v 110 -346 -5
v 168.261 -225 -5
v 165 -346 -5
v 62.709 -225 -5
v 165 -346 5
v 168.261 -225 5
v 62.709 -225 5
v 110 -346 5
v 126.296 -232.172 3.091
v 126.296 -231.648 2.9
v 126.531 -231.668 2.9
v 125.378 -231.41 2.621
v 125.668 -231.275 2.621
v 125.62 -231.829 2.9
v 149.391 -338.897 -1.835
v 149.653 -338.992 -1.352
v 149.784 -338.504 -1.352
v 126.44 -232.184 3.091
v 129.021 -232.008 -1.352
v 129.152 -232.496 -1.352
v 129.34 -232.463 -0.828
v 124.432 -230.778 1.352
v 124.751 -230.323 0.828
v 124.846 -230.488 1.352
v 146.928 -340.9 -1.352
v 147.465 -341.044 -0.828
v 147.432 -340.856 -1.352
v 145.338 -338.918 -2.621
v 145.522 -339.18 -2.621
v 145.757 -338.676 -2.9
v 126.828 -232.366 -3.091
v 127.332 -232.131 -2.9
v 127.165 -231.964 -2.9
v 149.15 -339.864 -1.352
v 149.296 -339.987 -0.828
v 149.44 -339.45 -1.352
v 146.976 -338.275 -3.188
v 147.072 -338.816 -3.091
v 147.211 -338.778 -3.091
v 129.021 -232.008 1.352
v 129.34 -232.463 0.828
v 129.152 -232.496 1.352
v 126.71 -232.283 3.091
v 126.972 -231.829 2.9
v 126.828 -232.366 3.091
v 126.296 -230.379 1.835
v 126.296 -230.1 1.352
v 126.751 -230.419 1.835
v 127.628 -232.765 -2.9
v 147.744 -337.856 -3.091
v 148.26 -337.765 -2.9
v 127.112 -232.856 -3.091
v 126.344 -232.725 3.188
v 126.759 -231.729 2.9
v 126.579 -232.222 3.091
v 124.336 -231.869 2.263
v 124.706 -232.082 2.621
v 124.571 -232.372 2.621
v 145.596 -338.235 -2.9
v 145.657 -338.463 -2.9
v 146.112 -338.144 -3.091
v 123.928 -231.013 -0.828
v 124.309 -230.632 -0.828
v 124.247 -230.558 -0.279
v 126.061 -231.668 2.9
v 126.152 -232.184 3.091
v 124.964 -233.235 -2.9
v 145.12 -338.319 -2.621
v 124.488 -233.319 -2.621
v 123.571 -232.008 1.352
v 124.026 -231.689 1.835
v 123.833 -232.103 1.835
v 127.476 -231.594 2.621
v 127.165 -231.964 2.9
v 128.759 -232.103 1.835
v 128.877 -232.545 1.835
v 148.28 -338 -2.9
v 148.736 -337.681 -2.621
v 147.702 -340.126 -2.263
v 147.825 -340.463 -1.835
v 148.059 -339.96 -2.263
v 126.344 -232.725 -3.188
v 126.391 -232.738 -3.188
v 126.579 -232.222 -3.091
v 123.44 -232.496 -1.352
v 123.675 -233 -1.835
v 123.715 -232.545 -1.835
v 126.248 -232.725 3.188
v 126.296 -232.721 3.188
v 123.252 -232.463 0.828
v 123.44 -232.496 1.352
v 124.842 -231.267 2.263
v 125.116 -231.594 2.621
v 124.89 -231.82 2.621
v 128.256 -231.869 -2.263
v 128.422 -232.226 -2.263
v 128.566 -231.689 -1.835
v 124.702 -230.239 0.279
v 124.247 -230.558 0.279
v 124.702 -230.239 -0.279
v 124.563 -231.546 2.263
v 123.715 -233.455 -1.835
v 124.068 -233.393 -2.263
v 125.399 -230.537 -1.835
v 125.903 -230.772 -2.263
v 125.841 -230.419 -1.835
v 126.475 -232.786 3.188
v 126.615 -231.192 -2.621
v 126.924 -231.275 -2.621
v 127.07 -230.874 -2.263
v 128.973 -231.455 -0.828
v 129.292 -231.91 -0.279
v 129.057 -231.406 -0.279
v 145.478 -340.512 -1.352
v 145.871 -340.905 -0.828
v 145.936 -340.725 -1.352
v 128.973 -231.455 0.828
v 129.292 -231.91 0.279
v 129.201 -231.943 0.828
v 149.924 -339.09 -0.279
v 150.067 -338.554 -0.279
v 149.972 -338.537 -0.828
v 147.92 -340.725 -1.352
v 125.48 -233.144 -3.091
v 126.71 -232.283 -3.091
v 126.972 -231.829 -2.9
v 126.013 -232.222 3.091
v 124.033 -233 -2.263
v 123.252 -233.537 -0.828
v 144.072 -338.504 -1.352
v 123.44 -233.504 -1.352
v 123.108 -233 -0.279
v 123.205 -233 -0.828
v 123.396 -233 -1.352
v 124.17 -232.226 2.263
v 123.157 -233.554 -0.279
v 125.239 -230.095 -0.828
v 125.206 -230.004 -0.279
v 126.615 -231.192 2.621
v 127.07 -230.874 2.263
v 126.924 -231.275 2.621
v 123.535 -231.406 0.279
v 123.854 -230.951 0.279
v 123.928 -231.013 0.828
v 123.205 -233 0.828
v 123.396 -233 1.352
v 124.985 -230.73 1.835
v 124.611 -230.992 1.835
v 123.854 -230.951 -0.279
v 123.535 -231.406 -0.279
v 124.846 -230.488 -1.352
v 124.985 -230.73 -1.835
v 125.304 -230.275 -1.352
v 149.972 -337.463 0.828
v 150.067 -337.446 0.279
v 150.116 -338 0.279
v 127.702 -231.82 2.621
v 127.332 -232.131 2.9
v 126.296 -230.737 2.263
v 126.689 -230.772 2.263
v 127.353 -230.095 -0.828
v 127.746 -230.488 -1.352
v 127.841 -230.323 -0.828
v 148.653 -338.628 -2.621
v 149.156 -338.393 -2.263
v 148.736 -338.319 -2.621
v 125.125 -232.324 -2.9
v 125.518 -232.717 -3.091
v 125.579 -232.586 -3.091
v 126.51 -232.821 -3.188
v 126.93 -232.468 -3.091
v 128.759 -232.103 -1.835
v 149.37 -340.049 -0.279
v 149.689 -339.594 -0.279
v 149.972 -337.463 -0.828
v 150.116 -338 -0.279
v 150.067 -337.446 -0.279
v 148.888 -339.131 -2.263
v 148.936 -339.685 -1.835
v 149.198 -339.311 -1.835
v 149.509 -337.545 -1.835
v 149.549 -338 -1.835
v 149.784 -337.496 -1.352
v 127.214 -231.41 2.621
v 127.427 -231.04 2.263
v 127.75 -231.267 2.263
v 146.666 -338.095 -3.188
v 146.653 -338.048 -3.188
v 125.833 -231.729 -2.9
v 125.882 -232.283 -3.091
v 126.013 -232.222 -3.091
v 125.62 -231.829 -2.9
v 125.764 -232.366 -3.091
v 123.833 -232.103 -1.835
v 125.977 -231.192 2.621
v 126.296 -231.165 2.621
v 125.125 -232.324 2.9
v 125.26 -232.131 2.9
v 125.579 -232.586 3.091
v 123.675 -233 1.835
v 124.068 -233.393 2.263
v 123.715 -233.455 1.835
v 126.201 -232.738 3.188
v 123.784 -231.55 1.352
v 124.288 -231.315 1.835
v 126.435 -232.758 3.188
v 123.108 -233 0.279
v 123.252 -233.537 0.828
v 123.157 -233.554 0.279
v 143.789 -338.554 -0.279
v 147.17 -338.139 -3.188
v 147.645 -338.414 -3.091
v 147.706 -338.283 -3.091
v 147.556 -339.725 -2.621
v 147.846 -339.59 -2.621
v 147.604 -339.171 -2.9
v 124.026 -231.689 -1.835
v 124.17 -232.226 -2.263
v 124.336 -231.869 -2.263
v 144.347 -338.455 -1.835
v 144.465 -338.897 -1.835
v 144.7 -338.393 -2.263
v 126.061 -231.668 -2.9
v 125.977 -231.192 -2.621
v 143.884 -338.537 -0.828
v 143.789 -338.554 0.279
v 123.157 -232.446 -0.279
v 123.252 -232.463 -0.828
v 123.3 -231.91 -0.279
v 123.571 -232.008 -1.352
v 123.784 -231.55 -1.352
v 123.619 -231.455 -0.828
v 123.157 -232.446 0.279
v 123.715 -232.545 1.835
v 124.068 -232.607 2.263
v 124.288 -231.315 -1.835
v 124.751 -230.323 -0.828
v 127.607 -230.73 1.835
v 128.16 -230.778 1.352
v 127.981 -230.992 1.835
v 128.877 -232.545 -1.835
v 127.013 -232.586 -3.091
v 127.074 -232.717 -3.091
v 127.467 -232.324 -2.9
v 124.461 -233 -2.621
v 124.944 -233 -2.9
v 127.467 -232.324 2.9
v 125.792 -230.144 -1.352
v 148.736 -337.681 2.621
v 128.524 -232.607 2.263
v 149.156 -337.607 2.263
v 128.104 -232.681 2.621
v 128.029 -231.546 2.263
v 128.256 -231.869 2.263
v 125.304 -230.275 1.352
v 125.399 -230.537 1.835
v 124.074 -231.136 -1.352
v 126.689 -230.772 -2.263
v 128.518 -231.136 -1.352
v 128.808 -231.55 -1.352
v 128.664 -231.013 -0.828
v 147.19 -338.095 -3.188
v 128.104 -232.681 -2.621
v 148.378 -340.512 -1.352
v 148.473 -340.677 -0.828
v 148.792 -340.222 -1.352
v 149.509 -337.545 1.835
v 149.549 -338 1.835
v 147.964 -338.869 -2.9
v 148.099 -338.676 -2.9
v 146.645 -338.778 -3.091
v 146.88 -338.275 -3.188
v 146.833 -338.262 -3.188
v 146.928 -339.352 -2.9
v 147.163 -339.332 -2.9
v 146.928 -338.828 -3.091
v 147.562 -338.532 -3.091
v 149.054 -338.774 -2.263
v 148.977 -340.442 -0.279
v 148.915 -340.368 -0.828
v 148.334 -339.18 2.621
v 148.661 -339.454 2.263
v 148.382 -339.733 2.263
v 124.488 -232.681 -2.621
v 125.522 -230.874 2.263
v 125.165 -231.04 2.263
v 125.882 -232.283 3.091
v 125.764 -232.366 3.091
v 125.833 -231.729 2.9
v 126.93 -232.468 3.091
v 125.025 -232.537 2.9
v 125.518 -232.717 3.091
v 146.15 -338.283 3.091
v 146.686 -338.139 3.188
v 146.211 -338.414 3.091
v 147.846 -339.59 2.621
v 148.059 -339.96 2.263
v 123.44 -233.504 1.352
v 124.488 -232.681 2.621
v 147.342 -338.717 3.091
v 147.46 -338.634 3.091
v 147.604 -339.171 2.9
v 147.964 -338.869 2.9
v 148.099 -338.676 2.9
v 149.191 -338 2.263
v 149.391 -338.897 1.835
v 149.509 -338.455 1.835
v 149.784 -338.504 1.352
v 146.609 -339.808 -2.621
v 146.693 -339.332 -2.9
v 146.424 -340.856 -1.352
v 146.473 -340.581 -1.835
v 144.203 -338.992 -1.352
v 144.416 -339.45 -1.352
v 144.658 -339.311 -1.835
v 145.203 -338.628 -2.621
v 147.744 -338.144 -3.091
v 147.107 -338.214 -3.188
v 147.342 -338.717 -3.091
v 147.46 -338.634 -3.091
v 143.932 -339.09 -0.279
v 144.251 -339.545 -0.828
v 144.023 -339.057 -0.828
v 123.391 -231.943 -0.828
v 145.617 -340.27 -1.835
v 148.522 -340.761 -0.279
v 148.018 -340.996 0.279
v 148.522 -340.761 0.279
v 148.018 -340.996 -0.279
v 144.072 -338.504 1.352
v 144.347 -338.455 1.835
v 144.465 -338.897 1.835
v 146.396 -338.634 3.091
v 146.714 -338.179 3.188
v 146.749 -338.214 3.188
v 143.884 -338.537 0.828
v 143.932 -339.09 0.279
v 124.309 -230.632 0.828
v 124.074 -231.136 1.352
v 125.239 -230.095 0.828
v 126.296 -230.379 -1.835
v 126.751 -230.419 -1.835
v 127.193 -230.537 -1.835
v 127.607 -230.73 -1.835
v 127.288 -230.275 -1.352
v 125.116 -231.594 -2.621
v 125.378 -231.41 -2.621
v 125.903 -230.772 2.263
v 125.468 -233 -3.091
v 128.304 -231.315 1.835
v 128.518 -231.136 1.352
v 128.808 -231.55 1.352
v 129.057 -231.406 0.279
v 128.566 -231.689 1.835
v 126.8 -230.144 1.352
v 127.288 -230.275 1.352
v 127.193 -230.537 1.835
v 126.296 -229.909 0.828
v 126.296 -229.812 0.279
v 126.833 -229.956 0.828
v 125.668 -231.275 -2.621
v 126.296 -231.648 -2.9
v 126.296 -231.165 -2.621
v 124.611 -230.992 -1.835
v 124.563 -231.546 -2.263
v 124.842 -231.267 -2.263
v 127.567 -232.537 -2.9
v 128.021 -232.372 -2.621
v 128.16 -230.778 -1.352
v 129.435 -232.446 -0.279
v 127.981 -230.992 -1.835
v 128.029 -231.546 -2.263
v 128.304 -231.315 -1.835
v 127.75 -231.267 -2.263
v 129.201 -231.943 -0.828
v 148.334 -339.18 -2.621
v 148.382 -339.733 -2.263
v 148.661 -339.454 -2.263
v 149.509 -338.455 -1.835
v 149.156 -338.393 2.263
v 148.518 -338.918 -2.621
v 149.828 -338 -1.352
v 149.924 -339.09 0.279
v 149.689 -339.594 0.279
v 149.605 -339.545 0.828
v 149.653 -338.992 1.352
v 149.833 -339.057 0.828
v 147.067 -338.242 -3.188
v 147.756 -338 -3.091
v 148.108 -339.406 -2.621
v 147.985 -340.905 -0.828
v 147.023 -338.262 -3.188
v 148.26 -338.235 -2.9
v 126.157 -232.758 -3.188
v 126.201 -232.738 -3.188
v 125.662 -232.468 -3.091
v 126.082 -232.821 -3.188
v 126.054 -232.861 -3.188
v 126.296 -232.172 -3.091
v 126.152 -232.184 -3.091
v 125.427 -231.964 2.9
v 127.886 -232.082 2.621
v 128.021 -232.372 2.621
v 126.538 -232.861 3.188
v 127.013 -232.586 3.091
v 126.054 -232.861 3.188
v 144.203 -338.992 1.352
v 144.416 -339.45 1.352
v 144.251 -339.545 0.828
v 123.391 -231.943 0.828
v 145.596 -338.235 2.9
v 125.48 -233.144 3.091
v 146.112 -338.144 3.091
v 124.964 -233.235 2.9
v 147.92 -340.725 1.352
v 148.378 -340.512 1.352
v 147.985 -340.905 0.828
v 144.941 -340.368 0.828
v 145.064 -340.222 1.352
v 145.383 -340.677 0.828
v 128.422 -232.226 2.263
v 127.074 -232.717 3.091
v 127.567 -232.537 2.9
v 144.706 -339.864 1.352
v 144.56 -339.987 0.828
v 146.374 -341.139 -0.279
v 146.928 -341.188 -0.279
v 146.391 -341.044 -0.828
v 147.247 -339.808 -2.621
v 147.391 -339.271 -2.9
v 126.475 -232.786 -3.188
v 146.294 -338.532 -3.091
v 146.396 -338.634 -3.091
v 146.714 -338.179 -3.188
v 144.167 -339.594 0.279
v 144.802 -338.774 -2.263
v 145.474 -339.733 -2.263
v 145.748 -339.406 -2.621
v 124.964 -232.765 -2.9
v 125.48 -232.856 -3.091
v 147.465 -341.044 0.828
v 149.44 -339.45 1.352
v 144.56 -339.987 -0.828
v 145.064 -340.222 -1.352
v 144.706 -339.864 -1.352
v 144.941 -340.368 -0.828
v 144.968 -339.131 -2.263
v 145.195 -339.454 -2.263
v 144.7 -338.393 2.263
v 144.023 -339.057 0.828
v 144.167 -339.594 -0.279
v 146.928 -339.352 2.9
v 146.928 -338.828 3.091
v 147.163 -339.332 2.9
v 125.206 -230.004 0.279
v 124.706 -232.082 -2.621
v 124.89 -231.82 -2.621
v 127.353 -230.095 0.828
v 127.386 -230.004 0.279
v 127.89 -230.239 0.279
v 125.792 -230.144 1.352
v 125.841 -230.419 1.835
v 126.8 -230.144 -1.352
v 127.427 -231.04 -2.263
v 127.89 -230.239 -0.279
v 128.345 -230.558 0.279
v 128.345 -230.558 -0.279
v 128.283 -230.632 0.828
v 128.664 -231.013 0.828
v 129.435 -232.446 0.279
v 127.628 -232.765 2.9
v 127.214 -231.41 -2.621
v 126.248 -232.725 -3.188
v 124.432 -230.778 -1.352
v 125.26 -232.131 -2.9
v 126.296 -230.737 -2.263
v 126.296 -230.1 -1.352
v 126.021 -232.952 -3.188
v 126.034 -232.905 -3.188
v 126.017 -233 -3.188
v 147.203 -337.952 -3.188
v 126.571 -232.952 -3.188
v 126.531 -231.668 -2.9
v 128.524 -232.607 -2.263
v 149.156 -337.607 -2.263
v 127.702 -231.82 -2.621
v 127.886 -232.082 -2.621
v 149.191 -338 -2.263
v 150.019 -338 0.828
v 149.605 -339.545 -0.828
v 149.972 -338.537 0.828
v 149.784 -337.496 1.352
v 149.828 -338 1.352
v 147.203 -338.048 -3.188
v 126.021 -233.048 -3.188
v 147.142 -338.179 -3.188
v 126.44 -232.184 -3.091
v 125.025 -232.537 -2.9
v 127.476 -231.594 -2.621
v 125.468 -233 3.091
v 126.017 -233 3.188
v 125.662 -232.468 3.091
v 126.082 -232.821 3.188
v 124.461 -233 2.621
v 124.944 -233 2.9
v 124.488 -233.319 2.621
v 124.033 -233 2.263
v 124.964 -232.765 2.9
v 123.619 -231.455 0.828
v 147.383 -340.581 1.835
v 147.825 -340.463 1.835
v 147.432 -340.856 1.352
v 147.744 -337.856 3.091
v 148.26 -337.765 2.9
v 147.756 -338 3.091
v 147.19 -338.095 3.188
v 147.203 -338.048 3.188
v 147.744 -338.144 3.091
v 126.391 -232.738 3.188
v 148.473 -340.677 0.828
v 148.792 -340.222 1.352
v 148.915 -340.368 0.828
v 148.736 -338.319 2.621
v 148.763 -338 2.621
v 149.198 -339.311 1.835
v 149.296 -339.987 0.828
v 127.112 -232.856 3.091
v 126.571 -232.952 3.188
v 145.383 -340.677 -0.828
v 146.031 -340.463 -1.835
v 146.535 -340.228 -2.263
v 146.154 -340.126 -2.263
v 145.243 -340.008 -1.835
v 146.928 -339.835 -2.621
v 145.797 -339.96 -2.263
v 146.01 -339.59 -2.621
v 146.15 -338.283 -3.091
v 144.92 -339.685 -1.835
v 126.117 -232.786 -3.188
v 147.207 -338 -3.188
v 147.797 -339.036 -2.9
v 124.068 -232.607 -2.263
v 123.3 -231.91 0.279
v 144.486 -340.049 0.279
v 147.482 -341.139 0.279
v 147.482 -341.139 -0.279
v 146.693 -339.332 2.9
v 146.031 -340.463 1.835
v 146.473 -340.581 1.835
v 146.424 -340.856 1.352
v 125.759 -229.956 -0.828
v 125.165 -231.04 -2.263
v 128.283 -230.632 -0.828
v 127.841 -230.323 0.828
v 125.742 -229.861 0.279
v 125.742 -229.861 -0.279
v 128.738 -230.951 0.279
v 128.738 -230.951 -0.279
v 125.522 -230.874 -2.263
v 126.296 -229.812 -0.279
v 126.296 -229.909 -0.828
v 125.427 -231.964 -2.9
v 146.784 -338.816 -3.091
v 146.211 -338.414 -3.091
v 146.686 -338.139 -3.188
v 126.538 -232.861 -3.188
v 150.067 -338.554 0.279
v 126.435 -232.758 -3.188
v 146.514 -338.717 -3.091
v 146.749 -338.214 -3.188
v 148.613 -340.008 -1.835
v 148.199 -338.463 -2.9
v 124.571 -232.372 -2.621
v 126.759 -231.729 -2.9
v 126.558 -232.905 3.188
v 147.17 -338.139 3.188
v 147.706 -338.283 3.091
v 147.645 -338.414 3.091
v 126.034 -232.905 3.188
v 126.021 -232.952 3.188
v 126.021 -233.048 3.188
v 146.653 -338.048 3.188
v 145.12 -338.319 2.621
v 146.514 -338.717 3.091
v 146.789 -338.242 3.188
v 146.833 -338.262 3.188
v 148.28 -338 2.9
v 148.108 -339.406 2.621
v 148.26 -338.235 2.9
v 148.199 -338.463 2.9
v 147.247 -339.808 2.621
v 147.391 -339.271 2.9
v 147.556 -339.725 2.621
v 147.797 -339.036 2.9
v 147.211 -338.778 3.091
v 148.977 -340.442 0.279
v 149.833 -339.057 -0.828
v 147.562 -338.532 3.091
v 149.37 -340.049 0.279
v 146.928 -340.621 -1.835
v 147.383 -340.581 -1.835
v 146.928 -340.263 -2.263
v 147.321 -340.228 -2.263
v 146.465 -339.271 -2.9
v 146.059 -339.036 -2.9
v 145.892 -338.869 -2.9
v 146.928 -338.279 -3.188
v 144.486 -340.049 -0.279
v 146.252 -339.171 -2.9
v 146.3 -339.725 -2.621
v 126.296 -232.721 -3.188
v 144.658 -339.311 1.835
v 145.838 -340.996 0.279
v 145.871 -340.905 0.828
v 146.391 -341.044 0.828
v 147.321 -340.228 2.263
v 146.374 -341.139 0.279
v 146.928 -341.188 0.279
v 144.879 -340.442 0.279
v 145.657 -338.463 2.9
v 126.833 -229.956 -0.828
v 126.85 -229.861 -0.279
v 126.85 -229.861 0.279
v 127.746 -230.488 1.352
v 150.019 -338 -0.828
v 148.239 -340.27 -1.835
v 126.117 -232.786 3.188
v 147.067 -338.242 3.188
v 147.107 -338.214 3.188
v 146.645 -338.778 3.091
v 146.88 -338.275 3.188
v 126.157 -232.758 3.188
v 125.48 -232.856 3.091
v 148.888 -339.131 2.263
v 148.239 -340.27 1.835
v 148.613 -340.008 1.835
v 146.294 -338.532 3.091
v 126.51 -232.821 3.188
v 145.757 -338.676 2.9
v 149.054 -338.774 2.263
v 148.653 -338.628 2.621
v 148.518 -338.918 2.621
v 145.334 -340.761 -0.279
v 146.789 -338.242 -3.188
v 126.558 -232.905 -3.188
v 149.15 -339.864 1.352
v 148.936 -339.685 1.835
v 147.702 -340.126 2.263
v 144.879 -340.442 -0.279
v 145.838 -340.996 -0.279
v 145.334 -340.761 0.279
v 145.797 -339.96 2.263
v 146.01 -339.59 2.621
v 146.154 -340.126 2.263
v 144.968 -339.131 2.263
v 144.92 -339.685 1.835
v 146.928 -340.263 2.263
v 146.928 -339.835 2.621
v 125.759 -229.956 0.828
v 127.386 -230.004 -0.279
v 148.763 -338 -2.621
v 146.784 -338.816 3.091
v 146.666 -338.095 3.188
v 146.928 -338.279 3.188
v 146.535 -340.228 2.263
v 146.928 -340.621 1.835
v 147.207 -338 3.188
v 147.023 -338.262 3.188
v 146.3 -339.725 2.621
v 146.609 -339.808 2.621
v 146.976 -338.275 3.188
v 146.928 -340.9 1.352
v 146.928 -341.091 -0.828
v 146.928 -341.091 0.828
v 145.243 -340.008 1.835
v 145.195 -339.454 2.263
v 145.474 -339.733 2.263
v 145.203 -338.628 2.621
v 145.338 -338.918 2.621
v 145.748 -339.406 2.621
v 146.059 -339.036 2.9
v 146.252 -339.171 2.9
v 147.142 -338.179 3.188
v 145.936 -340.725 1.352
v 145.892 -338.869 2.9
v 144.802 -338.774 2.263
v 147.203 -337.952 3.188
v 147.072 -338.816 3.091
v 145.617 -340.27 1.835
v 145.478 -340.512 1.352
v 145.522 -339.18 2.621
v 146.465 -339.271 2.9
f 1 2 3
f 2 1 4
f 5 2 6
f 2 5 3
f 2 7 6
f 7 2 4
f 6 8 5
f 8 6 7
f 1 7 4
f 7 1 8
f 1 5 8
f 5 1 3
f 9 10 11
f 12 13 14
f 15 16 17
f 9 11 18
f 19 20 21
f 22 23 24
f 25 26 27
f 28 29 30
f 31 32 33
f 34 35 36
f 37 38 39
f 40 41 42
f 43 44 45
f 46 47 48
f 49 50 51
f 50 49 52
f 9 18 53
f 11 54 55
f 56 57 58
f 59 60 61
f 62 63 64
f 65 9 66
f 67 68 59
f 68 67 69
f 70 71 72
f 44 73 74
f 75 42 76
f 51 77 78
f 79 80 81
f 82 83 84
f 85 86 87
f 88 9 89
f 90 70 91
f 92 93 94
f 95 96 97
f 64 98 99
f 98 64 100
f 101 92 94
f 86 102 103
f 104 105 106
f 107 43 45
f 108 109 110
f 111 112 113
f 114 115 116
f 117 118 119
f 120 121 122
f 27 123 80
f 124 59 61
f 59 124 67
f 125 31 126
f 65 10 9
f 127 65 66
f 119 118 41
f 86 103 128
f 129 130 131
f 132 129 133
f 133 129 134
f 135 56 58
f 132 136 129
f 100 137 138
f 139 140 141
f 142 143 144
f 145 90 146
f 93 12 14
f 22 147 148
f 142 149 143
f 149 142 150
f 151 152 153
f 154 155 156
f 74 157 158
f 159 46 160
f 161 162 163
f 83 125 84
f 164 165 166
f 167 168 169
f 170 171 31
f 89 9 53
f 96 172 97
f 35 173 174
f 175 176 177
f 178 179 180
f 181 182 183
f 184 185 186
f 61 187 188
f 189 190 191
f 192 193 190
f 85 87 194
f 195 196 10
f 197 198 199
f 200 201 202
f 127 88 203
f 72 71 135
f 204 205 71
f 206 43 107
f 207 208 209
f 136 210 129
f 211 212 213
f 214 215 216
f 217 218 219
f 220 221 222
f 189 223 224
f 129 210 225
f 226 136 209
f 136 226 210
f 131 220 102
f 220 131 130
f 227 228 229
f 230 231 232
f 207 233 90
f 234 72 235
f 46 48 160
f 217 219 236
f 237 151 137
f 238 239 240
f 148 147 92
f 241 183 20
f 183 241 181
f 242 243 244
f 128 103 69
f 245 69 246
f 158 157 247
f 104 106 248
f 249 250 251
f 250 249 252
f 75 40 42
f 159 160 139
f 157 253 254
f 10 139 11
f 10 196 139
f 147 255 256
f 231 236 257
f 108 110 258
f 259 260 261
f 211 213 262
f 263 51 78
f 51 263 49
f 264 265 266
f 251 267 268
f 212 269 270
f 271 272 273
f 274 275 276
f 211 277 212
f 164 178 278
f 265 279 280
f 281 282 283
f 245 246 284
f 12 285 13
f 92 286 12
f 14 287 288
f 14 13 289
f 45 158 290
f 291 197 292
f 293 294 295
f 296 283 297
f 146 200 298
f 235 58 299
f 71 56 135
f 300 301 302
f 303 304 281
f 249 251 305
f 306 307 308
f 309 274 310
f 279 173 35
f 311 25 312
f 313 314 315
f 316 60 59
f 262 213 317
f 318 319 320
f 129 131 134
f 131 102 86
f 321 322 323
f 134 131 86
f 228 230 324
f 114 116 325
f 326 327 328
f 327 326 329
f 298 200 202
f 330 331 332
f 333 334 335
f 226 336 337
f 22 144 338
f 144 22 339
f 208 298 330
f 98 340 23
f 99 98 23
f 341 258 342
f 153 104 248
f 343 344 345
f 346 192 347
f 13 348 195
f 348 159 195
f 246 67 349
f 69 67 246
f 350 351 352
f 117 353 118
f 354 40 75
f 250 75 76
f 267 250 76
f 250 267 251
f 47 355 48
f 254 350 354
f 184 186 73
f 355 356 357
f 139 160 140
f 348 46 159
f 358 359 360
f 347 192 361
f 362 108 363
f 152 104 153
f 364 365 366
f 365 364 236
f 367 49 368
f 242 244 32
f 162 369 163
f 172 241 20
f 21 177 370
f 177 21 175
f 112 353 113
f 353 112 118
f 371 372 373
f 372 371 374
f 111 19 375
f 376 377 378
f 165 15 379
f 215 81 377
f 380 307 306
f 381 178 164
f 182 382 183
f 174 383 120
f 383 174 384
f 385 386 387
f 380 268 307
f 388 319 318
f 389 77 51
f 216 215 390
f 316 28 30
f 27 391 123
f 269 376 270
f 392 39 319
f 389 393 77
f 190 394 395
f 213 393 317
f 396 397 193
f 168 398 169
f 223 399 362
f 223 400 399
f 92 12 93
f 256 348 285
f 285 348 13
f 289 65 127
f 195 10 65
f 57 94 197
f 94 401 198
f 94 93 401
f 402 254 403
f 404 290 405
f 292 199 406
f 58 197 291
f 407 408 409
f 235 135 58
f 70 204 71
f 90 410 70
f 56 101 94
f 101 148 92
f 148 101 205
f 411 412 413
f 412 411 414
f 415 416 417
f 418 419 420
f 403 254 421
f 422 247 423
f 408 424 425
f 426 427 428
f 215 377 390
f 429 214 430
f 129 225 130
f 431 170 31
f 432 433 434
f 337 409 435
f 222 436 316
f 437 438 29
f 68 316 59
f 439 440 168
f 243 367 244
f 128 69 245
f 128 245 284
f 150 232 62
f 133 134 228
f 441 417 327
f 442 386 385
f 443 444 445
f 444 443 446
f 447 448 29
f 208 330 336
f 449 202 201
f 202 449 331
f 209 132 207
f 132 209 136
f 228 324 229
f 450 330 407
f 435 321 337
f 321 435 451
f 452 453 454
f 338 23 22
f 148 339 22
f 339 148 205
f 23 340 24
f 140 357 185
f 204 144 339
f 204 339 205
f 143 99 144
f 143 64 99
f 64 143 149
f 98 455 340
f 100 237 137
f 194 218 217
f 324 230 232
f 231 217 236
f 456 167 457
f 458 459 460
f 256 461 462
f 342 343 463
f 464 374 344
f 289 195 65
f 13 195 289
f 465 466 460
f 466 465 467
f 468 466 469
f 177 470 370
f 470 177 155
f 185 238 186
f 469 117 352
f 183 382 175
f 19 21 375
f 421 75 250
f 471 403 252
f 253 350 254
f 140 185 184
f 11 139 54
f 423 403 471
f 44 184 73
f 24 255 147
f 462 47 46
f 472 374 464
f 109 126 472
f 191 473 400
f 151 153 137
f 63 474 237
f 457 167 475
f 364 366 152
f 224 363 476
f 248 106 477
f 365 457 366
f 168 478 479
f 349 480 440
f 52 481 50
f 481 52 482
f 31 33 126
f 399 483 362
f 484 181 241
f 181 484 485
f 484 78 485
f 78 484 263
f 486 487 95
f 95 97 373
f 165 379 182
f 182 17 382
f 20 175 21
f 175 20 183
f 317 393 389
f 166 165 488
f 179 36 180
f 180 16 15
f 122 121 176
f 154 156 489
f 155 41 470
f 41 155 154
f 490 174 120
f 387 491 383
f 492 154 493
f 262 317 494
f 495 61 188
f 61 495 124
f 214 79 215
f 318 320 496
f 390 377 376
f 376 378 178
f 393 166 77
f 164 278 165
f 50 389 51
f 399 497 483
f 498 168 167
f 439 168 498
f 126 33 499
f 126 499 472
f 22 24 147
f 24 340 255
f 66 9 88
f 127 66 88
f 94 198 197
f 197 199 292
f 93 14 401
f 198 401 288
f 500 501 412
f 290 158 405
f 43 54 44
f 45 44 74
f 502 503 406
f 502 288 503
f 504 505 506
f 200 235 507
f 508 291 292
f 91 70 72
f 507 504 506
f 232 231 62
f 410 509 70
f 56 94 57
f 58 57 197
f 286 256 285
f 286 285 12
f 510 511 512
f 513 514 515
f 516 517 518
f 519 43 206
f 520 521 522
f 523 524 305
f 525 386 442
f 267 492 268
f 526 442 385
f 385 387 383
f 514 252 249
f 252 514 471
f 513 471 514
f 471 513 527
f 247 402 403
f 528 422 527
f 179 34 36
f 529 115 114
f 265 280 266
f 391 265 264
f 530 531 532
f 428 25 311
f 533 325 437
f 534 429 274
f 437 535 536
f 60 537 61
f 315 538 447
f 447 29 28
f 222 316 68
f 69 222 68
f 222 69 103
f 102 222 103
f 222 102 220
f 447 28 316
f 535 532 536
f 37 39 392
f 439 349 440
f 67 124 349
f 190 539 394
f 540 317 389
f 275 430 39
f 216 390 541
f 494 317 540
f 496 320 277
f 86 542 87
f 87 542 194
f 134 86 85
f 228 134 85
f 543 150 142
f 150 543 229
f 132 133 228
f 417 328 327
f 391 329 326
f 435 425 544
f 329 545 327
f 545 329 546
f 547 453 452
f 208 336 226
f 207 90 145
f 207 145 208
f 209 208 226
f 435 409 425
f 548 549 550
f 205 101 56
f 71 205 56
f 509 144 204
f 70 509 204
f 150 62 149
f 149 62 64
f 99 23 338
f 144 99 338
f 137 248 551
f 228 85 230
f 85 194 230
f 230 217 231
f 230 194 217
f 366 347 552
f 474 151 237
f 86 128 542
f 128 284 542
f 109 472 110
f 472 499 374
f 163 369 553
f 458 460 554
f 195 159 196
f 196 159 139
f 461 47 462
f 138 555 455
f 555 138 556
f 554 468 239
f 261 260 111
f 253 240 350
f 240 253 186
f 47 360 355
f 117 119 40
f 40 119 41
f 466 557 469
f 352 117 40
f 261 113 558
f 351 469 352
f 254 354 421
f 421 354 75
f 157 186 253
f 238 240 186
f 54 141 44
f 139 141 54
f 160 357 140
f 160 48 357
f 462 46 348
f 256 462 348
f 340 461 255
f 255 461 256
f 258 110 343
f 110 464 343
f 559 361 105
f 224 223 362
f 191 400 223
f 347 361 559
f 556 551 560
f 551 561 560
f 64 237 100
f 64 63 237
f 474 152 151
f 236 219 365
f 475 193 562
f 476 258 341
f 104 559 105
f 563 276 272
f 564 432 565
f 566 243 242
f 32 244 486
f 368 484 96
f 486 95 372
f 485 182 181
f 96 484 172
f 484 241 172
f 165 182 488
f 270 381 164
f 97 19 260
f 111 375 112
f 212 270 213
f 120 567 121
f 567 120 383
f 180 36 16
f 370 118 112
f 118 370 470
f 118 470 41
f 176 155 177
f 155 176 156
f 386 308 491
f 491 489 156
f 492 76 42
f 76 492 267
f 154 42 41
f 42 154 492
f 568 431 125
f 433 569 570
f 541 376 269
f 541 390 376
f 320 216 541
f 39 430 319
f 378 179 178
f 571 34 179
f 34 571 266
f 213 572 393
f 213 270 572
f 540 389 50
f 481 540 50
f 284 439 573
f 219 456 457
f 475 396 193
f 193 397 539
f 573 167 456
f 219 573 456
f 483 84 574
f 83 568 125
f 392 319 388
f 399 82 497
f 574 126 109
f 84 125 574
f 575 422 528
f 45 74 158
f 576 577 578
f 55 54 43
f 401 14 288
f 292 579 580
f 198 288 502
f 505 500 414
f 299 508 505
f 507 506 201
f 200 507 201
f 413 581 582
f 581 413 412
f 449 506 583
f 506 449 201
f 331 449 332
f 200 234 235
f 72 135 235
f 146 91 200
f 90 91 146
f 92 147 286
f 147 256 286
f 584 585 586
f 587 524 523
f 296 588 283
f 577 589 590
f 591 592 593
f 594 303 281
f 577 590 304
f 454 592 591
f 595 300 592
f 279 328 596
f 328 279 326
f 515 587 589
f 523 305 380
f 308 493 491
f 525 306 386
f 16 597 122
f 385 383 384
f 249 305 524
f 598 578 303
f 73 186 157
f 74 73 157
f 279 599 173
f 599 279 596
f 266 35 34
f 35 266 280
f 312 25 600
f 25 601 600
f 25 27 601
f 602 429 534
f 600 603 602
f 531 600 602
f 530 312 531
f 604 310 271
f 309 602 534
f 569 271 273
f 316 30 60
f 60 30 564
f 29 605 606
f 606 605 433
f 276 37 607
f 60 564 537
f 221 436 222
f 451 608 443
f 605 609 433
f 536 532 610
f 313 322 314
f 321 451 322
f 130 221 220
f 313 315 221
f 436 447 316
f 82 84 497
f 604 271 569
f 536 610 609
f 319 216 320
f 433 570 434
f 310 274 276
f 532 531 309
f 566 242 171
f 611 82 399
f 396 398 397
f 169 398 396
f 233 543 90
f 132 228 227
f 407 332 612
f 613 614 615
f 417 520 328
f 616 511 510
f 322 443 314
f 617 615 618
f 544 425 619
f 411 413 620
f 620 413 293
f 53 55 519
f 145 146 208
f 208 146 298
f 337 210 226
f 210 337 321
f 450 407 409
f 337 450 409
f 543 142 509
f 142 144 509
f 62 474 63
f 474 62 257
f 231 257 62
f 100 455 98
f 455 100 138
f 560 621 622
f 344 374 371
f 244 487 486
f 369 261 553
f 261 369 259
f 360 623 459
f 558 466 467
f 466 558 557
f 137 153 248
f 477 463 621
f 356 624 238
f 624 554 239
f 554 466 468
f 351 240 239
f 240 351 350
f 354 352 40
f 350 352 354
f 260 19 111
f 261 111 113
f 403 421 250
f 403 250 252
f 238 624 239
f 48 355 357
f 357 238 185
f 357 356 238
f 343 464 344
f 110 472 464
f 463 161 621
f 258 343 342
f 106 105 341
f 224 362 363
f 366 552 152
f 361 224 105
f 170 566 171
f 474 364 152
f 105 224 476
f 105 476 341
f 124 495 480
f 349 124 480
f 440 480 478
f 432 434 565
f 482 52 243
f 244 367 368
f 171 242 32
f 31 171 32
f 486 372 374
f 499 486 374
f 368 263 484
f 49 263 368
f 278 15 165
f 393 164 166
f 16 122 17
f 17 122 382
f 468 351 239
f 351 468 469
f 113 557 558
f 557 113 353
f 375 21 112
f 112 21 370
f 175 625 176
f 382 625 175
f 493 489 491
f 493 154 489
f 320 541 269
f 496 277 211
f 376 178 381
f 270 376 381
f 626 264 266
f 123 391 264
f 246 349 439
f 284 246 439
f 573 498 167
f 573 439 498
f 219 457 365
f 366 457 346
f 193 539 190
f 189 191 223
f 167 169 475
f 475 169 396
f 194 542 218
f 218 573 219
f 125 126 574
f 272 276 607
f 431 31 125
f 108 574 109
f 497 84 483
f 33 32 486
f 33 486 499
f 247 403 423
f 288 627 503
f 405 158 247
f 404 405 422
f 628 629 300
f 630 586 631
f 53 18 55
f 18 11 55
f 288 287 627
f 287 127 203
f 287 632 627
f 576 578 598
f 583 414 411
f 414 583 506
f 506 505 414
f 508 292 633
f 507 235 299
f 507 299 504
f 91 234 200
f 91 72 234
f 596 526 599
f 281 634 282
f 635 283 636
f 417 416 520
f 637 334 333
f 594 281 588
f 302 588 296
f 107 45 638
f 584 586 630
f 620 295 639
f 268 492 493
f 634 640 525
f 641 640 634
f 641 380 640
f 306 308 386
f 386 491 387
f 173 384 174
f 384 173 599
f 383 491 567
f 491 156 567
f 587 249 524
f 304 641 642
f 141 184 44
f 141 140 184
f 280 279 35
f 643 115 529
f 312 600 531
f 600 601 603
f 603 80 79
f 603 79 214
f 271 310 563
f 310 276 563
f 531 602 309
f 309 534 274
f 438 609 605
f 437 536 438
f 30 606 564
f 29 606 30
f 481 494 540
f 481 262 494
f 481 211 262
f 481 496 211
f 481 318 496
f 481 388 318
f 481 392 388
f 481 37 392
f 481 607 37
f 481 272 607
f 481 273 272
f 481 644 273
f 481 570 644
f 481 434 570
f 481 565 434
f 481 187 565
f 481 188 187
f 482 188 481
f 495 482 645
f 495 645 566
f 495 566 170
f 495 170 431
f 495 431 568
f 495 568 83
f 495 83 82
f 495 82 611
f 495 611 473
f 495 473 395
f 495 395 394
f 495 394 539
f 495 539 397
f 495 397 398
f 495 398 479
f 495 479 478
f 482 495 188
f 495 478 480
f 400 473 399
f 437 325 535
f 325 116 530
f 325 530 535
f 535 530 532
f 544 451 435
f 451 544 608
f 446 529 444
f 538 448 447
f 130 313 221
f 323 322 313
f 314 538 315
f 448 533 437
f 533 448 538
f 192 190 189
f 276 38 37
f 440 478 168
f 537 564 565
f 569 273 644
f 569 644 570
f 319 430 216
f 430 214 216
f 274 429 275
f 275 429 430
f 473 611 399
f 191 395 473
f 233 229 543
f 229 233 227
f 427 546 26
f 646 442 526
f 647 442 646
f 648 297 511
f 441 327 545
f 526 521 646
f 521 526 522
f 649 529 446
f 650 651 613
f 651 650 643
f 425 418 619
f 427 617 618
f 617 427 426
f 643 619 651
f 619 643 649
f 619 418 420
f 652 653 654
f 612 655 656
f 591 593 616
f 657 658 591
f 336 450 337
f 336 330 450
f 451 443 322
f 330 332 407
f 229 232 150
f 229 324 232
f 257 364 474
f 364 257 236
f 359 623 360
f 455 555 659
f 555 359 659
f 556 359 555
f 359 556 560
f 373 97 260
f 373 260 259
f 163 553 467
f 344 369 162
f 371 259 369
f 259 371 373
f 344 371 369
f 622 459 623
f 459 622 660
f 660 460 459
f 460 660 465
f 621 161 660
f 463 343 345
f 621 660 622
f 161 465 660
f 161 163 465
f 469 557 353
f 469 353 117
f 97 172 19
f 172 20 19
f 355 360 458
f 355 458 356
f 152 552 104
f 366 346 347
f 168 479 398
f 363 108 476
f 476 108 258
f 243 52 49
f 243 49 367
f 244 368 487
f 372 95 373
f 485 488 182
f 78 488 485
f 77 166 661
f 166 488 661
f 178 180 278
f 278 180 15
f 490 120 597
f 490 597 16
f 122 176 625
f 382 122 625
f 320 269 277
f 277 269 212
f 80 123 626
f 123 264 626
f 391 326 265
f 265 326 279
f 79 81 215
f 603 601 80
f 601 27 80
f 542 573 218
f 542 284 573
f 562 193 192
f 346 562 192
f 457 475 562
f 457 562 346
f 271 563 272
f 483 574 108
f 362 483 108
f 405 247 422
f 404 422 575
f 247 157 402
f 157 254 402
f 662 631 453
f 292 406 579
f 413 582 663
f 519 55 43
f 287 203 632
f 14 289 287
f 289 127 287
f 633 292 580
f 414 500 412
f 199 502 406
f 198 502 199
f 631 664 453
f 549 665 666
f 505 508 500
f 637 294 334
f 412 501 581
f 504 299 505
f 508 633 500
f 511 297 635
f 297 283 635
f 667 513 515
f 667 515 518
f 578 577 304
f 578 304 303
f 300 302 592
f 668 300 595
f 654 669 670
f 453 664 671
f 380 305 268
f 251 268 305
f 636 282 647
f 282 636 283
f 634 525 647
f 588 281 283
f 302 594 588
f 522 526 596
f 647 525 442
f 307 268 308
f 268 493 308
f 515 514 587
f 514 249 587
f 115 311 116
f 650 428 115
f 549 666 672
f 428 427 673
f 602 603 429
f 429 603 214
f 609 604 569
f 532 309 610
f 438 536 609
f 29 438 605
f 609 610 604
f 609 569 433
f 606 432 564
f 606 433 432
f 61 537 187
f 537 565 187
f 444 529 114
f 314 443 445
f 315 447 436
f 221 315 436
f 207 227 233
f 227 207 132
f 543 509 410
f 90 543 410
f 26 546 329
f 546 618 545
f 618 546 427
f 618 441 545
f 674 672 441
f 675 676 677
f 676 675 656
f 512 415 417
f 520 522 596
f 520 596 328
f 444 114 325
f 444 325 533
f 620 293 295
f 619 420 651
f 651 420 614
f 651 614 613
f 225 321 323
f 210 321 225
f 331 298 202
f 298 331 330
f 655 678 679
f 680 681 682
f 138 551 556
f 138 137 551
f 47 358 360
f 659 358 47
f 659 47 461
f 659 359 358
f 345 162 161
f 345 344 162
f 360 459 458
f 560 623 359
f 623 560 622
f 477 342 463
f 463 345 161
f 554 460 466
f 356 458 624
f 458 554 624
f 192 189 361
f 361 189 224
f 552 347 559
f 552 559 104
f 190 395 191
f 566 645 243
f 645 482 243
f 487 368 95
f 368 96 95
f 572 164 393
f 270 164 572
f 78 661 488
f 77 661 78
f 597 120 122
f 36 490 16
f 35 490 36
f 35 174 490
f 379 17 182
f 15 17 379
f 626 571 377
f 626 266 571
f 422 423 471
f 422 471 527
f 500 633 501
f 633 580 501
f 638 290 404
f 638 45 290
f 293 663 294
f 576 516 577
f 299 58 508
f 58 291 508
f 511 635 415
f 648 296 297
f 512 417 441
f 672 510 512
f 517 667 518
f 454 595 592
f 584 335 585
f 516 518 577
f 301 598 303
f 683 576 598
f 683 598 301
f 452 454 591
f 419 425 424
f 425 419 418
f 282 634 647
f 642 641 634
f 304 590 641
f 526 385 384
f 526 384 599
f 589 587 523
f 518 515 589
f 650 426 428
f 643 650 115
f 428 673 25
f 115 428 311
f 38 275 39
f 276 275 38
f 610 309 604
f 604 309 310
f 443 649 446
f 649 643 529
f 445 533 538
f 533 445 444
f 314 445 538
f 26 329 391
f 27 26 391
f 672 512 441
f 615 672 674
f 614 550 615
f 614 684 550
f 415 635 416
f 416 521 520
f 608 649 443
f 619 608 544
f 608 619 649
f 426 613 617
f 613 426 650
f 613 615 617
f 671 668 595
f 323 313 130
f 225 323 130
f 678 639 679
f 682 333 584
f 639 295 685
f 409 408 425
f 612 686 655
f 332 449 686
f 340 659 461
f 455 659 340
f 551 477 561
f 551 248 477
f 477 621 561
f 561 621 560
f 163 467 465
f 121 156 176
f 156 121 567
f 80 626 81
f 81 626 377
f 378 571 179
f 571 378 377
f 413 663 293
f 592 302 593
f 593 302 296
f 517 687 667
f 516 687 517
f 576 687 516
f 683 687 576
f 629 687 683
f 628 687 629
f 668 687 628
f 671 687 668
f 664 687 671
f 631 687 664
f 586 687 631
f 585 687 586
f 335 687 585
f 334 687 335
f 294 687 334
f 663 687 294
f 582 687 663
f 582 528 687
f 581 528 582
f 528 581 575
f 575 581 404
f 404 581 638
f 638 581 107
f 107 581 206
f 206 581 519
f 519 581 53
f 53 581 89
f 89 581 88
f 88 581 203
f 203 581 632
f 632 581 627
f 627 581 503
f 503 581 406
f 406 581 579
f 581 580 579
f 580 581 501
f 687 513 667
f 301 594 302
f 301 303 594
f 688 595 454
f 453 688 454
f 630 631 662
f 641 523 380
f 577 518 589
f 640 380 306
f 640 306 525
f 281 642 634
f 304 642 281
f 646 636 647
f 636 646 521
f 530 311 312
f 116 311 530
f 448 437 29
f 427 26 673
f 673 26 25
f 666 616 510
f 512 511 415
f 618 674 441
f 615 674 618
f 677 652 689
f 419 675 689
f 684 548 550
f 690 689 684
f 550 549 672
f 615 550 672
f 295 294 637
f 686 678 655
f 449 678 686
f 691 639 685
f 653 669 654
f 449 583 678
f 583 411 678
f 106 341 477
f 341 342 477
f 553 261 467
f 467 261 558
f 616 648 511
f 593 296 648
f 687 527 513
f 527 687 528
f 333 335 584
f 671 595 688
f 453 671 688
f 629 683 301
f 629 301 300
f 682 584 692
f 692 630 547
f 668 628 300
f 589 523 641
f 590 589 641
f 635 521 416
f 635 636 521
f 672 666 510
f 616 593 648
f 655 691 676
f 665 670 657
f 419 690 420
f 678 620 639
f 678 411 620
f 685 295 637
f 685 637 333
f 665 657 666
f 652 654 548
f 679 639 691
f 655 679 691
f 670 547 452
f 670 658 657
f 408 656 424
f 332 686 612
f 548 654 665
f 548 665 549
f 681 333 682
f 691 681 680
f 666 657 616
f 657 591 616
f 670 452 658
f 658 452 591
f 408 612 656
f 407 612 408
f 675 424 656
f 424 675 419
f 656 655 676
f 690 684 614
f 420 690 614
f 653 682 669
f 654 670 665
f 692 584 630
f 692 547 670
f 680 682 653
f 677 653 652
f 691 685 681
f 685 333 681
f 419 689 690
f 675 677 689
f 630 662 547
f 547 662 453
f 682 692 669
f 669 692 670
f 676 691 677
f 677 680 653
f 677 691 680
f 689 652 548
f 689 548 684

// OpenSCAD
$fn=64;
module raw(){linear_extrude(height=10,center=true) polygon(points=[[62.70889,225.00000],[168.26146,225.00000],[165.00000,346.00000],[110.00000,346.00000]]);}
module spar(){hull(){translate([126.2960,233.0000,0]) sphere(d=6.4,$fn=36); translate([146.9280,338.0000,0]) sphere(d=6.4,$fn=36);}}
module wing(){difference(){raw(); spar(); }}
mirror([0,1,0]) wing();
